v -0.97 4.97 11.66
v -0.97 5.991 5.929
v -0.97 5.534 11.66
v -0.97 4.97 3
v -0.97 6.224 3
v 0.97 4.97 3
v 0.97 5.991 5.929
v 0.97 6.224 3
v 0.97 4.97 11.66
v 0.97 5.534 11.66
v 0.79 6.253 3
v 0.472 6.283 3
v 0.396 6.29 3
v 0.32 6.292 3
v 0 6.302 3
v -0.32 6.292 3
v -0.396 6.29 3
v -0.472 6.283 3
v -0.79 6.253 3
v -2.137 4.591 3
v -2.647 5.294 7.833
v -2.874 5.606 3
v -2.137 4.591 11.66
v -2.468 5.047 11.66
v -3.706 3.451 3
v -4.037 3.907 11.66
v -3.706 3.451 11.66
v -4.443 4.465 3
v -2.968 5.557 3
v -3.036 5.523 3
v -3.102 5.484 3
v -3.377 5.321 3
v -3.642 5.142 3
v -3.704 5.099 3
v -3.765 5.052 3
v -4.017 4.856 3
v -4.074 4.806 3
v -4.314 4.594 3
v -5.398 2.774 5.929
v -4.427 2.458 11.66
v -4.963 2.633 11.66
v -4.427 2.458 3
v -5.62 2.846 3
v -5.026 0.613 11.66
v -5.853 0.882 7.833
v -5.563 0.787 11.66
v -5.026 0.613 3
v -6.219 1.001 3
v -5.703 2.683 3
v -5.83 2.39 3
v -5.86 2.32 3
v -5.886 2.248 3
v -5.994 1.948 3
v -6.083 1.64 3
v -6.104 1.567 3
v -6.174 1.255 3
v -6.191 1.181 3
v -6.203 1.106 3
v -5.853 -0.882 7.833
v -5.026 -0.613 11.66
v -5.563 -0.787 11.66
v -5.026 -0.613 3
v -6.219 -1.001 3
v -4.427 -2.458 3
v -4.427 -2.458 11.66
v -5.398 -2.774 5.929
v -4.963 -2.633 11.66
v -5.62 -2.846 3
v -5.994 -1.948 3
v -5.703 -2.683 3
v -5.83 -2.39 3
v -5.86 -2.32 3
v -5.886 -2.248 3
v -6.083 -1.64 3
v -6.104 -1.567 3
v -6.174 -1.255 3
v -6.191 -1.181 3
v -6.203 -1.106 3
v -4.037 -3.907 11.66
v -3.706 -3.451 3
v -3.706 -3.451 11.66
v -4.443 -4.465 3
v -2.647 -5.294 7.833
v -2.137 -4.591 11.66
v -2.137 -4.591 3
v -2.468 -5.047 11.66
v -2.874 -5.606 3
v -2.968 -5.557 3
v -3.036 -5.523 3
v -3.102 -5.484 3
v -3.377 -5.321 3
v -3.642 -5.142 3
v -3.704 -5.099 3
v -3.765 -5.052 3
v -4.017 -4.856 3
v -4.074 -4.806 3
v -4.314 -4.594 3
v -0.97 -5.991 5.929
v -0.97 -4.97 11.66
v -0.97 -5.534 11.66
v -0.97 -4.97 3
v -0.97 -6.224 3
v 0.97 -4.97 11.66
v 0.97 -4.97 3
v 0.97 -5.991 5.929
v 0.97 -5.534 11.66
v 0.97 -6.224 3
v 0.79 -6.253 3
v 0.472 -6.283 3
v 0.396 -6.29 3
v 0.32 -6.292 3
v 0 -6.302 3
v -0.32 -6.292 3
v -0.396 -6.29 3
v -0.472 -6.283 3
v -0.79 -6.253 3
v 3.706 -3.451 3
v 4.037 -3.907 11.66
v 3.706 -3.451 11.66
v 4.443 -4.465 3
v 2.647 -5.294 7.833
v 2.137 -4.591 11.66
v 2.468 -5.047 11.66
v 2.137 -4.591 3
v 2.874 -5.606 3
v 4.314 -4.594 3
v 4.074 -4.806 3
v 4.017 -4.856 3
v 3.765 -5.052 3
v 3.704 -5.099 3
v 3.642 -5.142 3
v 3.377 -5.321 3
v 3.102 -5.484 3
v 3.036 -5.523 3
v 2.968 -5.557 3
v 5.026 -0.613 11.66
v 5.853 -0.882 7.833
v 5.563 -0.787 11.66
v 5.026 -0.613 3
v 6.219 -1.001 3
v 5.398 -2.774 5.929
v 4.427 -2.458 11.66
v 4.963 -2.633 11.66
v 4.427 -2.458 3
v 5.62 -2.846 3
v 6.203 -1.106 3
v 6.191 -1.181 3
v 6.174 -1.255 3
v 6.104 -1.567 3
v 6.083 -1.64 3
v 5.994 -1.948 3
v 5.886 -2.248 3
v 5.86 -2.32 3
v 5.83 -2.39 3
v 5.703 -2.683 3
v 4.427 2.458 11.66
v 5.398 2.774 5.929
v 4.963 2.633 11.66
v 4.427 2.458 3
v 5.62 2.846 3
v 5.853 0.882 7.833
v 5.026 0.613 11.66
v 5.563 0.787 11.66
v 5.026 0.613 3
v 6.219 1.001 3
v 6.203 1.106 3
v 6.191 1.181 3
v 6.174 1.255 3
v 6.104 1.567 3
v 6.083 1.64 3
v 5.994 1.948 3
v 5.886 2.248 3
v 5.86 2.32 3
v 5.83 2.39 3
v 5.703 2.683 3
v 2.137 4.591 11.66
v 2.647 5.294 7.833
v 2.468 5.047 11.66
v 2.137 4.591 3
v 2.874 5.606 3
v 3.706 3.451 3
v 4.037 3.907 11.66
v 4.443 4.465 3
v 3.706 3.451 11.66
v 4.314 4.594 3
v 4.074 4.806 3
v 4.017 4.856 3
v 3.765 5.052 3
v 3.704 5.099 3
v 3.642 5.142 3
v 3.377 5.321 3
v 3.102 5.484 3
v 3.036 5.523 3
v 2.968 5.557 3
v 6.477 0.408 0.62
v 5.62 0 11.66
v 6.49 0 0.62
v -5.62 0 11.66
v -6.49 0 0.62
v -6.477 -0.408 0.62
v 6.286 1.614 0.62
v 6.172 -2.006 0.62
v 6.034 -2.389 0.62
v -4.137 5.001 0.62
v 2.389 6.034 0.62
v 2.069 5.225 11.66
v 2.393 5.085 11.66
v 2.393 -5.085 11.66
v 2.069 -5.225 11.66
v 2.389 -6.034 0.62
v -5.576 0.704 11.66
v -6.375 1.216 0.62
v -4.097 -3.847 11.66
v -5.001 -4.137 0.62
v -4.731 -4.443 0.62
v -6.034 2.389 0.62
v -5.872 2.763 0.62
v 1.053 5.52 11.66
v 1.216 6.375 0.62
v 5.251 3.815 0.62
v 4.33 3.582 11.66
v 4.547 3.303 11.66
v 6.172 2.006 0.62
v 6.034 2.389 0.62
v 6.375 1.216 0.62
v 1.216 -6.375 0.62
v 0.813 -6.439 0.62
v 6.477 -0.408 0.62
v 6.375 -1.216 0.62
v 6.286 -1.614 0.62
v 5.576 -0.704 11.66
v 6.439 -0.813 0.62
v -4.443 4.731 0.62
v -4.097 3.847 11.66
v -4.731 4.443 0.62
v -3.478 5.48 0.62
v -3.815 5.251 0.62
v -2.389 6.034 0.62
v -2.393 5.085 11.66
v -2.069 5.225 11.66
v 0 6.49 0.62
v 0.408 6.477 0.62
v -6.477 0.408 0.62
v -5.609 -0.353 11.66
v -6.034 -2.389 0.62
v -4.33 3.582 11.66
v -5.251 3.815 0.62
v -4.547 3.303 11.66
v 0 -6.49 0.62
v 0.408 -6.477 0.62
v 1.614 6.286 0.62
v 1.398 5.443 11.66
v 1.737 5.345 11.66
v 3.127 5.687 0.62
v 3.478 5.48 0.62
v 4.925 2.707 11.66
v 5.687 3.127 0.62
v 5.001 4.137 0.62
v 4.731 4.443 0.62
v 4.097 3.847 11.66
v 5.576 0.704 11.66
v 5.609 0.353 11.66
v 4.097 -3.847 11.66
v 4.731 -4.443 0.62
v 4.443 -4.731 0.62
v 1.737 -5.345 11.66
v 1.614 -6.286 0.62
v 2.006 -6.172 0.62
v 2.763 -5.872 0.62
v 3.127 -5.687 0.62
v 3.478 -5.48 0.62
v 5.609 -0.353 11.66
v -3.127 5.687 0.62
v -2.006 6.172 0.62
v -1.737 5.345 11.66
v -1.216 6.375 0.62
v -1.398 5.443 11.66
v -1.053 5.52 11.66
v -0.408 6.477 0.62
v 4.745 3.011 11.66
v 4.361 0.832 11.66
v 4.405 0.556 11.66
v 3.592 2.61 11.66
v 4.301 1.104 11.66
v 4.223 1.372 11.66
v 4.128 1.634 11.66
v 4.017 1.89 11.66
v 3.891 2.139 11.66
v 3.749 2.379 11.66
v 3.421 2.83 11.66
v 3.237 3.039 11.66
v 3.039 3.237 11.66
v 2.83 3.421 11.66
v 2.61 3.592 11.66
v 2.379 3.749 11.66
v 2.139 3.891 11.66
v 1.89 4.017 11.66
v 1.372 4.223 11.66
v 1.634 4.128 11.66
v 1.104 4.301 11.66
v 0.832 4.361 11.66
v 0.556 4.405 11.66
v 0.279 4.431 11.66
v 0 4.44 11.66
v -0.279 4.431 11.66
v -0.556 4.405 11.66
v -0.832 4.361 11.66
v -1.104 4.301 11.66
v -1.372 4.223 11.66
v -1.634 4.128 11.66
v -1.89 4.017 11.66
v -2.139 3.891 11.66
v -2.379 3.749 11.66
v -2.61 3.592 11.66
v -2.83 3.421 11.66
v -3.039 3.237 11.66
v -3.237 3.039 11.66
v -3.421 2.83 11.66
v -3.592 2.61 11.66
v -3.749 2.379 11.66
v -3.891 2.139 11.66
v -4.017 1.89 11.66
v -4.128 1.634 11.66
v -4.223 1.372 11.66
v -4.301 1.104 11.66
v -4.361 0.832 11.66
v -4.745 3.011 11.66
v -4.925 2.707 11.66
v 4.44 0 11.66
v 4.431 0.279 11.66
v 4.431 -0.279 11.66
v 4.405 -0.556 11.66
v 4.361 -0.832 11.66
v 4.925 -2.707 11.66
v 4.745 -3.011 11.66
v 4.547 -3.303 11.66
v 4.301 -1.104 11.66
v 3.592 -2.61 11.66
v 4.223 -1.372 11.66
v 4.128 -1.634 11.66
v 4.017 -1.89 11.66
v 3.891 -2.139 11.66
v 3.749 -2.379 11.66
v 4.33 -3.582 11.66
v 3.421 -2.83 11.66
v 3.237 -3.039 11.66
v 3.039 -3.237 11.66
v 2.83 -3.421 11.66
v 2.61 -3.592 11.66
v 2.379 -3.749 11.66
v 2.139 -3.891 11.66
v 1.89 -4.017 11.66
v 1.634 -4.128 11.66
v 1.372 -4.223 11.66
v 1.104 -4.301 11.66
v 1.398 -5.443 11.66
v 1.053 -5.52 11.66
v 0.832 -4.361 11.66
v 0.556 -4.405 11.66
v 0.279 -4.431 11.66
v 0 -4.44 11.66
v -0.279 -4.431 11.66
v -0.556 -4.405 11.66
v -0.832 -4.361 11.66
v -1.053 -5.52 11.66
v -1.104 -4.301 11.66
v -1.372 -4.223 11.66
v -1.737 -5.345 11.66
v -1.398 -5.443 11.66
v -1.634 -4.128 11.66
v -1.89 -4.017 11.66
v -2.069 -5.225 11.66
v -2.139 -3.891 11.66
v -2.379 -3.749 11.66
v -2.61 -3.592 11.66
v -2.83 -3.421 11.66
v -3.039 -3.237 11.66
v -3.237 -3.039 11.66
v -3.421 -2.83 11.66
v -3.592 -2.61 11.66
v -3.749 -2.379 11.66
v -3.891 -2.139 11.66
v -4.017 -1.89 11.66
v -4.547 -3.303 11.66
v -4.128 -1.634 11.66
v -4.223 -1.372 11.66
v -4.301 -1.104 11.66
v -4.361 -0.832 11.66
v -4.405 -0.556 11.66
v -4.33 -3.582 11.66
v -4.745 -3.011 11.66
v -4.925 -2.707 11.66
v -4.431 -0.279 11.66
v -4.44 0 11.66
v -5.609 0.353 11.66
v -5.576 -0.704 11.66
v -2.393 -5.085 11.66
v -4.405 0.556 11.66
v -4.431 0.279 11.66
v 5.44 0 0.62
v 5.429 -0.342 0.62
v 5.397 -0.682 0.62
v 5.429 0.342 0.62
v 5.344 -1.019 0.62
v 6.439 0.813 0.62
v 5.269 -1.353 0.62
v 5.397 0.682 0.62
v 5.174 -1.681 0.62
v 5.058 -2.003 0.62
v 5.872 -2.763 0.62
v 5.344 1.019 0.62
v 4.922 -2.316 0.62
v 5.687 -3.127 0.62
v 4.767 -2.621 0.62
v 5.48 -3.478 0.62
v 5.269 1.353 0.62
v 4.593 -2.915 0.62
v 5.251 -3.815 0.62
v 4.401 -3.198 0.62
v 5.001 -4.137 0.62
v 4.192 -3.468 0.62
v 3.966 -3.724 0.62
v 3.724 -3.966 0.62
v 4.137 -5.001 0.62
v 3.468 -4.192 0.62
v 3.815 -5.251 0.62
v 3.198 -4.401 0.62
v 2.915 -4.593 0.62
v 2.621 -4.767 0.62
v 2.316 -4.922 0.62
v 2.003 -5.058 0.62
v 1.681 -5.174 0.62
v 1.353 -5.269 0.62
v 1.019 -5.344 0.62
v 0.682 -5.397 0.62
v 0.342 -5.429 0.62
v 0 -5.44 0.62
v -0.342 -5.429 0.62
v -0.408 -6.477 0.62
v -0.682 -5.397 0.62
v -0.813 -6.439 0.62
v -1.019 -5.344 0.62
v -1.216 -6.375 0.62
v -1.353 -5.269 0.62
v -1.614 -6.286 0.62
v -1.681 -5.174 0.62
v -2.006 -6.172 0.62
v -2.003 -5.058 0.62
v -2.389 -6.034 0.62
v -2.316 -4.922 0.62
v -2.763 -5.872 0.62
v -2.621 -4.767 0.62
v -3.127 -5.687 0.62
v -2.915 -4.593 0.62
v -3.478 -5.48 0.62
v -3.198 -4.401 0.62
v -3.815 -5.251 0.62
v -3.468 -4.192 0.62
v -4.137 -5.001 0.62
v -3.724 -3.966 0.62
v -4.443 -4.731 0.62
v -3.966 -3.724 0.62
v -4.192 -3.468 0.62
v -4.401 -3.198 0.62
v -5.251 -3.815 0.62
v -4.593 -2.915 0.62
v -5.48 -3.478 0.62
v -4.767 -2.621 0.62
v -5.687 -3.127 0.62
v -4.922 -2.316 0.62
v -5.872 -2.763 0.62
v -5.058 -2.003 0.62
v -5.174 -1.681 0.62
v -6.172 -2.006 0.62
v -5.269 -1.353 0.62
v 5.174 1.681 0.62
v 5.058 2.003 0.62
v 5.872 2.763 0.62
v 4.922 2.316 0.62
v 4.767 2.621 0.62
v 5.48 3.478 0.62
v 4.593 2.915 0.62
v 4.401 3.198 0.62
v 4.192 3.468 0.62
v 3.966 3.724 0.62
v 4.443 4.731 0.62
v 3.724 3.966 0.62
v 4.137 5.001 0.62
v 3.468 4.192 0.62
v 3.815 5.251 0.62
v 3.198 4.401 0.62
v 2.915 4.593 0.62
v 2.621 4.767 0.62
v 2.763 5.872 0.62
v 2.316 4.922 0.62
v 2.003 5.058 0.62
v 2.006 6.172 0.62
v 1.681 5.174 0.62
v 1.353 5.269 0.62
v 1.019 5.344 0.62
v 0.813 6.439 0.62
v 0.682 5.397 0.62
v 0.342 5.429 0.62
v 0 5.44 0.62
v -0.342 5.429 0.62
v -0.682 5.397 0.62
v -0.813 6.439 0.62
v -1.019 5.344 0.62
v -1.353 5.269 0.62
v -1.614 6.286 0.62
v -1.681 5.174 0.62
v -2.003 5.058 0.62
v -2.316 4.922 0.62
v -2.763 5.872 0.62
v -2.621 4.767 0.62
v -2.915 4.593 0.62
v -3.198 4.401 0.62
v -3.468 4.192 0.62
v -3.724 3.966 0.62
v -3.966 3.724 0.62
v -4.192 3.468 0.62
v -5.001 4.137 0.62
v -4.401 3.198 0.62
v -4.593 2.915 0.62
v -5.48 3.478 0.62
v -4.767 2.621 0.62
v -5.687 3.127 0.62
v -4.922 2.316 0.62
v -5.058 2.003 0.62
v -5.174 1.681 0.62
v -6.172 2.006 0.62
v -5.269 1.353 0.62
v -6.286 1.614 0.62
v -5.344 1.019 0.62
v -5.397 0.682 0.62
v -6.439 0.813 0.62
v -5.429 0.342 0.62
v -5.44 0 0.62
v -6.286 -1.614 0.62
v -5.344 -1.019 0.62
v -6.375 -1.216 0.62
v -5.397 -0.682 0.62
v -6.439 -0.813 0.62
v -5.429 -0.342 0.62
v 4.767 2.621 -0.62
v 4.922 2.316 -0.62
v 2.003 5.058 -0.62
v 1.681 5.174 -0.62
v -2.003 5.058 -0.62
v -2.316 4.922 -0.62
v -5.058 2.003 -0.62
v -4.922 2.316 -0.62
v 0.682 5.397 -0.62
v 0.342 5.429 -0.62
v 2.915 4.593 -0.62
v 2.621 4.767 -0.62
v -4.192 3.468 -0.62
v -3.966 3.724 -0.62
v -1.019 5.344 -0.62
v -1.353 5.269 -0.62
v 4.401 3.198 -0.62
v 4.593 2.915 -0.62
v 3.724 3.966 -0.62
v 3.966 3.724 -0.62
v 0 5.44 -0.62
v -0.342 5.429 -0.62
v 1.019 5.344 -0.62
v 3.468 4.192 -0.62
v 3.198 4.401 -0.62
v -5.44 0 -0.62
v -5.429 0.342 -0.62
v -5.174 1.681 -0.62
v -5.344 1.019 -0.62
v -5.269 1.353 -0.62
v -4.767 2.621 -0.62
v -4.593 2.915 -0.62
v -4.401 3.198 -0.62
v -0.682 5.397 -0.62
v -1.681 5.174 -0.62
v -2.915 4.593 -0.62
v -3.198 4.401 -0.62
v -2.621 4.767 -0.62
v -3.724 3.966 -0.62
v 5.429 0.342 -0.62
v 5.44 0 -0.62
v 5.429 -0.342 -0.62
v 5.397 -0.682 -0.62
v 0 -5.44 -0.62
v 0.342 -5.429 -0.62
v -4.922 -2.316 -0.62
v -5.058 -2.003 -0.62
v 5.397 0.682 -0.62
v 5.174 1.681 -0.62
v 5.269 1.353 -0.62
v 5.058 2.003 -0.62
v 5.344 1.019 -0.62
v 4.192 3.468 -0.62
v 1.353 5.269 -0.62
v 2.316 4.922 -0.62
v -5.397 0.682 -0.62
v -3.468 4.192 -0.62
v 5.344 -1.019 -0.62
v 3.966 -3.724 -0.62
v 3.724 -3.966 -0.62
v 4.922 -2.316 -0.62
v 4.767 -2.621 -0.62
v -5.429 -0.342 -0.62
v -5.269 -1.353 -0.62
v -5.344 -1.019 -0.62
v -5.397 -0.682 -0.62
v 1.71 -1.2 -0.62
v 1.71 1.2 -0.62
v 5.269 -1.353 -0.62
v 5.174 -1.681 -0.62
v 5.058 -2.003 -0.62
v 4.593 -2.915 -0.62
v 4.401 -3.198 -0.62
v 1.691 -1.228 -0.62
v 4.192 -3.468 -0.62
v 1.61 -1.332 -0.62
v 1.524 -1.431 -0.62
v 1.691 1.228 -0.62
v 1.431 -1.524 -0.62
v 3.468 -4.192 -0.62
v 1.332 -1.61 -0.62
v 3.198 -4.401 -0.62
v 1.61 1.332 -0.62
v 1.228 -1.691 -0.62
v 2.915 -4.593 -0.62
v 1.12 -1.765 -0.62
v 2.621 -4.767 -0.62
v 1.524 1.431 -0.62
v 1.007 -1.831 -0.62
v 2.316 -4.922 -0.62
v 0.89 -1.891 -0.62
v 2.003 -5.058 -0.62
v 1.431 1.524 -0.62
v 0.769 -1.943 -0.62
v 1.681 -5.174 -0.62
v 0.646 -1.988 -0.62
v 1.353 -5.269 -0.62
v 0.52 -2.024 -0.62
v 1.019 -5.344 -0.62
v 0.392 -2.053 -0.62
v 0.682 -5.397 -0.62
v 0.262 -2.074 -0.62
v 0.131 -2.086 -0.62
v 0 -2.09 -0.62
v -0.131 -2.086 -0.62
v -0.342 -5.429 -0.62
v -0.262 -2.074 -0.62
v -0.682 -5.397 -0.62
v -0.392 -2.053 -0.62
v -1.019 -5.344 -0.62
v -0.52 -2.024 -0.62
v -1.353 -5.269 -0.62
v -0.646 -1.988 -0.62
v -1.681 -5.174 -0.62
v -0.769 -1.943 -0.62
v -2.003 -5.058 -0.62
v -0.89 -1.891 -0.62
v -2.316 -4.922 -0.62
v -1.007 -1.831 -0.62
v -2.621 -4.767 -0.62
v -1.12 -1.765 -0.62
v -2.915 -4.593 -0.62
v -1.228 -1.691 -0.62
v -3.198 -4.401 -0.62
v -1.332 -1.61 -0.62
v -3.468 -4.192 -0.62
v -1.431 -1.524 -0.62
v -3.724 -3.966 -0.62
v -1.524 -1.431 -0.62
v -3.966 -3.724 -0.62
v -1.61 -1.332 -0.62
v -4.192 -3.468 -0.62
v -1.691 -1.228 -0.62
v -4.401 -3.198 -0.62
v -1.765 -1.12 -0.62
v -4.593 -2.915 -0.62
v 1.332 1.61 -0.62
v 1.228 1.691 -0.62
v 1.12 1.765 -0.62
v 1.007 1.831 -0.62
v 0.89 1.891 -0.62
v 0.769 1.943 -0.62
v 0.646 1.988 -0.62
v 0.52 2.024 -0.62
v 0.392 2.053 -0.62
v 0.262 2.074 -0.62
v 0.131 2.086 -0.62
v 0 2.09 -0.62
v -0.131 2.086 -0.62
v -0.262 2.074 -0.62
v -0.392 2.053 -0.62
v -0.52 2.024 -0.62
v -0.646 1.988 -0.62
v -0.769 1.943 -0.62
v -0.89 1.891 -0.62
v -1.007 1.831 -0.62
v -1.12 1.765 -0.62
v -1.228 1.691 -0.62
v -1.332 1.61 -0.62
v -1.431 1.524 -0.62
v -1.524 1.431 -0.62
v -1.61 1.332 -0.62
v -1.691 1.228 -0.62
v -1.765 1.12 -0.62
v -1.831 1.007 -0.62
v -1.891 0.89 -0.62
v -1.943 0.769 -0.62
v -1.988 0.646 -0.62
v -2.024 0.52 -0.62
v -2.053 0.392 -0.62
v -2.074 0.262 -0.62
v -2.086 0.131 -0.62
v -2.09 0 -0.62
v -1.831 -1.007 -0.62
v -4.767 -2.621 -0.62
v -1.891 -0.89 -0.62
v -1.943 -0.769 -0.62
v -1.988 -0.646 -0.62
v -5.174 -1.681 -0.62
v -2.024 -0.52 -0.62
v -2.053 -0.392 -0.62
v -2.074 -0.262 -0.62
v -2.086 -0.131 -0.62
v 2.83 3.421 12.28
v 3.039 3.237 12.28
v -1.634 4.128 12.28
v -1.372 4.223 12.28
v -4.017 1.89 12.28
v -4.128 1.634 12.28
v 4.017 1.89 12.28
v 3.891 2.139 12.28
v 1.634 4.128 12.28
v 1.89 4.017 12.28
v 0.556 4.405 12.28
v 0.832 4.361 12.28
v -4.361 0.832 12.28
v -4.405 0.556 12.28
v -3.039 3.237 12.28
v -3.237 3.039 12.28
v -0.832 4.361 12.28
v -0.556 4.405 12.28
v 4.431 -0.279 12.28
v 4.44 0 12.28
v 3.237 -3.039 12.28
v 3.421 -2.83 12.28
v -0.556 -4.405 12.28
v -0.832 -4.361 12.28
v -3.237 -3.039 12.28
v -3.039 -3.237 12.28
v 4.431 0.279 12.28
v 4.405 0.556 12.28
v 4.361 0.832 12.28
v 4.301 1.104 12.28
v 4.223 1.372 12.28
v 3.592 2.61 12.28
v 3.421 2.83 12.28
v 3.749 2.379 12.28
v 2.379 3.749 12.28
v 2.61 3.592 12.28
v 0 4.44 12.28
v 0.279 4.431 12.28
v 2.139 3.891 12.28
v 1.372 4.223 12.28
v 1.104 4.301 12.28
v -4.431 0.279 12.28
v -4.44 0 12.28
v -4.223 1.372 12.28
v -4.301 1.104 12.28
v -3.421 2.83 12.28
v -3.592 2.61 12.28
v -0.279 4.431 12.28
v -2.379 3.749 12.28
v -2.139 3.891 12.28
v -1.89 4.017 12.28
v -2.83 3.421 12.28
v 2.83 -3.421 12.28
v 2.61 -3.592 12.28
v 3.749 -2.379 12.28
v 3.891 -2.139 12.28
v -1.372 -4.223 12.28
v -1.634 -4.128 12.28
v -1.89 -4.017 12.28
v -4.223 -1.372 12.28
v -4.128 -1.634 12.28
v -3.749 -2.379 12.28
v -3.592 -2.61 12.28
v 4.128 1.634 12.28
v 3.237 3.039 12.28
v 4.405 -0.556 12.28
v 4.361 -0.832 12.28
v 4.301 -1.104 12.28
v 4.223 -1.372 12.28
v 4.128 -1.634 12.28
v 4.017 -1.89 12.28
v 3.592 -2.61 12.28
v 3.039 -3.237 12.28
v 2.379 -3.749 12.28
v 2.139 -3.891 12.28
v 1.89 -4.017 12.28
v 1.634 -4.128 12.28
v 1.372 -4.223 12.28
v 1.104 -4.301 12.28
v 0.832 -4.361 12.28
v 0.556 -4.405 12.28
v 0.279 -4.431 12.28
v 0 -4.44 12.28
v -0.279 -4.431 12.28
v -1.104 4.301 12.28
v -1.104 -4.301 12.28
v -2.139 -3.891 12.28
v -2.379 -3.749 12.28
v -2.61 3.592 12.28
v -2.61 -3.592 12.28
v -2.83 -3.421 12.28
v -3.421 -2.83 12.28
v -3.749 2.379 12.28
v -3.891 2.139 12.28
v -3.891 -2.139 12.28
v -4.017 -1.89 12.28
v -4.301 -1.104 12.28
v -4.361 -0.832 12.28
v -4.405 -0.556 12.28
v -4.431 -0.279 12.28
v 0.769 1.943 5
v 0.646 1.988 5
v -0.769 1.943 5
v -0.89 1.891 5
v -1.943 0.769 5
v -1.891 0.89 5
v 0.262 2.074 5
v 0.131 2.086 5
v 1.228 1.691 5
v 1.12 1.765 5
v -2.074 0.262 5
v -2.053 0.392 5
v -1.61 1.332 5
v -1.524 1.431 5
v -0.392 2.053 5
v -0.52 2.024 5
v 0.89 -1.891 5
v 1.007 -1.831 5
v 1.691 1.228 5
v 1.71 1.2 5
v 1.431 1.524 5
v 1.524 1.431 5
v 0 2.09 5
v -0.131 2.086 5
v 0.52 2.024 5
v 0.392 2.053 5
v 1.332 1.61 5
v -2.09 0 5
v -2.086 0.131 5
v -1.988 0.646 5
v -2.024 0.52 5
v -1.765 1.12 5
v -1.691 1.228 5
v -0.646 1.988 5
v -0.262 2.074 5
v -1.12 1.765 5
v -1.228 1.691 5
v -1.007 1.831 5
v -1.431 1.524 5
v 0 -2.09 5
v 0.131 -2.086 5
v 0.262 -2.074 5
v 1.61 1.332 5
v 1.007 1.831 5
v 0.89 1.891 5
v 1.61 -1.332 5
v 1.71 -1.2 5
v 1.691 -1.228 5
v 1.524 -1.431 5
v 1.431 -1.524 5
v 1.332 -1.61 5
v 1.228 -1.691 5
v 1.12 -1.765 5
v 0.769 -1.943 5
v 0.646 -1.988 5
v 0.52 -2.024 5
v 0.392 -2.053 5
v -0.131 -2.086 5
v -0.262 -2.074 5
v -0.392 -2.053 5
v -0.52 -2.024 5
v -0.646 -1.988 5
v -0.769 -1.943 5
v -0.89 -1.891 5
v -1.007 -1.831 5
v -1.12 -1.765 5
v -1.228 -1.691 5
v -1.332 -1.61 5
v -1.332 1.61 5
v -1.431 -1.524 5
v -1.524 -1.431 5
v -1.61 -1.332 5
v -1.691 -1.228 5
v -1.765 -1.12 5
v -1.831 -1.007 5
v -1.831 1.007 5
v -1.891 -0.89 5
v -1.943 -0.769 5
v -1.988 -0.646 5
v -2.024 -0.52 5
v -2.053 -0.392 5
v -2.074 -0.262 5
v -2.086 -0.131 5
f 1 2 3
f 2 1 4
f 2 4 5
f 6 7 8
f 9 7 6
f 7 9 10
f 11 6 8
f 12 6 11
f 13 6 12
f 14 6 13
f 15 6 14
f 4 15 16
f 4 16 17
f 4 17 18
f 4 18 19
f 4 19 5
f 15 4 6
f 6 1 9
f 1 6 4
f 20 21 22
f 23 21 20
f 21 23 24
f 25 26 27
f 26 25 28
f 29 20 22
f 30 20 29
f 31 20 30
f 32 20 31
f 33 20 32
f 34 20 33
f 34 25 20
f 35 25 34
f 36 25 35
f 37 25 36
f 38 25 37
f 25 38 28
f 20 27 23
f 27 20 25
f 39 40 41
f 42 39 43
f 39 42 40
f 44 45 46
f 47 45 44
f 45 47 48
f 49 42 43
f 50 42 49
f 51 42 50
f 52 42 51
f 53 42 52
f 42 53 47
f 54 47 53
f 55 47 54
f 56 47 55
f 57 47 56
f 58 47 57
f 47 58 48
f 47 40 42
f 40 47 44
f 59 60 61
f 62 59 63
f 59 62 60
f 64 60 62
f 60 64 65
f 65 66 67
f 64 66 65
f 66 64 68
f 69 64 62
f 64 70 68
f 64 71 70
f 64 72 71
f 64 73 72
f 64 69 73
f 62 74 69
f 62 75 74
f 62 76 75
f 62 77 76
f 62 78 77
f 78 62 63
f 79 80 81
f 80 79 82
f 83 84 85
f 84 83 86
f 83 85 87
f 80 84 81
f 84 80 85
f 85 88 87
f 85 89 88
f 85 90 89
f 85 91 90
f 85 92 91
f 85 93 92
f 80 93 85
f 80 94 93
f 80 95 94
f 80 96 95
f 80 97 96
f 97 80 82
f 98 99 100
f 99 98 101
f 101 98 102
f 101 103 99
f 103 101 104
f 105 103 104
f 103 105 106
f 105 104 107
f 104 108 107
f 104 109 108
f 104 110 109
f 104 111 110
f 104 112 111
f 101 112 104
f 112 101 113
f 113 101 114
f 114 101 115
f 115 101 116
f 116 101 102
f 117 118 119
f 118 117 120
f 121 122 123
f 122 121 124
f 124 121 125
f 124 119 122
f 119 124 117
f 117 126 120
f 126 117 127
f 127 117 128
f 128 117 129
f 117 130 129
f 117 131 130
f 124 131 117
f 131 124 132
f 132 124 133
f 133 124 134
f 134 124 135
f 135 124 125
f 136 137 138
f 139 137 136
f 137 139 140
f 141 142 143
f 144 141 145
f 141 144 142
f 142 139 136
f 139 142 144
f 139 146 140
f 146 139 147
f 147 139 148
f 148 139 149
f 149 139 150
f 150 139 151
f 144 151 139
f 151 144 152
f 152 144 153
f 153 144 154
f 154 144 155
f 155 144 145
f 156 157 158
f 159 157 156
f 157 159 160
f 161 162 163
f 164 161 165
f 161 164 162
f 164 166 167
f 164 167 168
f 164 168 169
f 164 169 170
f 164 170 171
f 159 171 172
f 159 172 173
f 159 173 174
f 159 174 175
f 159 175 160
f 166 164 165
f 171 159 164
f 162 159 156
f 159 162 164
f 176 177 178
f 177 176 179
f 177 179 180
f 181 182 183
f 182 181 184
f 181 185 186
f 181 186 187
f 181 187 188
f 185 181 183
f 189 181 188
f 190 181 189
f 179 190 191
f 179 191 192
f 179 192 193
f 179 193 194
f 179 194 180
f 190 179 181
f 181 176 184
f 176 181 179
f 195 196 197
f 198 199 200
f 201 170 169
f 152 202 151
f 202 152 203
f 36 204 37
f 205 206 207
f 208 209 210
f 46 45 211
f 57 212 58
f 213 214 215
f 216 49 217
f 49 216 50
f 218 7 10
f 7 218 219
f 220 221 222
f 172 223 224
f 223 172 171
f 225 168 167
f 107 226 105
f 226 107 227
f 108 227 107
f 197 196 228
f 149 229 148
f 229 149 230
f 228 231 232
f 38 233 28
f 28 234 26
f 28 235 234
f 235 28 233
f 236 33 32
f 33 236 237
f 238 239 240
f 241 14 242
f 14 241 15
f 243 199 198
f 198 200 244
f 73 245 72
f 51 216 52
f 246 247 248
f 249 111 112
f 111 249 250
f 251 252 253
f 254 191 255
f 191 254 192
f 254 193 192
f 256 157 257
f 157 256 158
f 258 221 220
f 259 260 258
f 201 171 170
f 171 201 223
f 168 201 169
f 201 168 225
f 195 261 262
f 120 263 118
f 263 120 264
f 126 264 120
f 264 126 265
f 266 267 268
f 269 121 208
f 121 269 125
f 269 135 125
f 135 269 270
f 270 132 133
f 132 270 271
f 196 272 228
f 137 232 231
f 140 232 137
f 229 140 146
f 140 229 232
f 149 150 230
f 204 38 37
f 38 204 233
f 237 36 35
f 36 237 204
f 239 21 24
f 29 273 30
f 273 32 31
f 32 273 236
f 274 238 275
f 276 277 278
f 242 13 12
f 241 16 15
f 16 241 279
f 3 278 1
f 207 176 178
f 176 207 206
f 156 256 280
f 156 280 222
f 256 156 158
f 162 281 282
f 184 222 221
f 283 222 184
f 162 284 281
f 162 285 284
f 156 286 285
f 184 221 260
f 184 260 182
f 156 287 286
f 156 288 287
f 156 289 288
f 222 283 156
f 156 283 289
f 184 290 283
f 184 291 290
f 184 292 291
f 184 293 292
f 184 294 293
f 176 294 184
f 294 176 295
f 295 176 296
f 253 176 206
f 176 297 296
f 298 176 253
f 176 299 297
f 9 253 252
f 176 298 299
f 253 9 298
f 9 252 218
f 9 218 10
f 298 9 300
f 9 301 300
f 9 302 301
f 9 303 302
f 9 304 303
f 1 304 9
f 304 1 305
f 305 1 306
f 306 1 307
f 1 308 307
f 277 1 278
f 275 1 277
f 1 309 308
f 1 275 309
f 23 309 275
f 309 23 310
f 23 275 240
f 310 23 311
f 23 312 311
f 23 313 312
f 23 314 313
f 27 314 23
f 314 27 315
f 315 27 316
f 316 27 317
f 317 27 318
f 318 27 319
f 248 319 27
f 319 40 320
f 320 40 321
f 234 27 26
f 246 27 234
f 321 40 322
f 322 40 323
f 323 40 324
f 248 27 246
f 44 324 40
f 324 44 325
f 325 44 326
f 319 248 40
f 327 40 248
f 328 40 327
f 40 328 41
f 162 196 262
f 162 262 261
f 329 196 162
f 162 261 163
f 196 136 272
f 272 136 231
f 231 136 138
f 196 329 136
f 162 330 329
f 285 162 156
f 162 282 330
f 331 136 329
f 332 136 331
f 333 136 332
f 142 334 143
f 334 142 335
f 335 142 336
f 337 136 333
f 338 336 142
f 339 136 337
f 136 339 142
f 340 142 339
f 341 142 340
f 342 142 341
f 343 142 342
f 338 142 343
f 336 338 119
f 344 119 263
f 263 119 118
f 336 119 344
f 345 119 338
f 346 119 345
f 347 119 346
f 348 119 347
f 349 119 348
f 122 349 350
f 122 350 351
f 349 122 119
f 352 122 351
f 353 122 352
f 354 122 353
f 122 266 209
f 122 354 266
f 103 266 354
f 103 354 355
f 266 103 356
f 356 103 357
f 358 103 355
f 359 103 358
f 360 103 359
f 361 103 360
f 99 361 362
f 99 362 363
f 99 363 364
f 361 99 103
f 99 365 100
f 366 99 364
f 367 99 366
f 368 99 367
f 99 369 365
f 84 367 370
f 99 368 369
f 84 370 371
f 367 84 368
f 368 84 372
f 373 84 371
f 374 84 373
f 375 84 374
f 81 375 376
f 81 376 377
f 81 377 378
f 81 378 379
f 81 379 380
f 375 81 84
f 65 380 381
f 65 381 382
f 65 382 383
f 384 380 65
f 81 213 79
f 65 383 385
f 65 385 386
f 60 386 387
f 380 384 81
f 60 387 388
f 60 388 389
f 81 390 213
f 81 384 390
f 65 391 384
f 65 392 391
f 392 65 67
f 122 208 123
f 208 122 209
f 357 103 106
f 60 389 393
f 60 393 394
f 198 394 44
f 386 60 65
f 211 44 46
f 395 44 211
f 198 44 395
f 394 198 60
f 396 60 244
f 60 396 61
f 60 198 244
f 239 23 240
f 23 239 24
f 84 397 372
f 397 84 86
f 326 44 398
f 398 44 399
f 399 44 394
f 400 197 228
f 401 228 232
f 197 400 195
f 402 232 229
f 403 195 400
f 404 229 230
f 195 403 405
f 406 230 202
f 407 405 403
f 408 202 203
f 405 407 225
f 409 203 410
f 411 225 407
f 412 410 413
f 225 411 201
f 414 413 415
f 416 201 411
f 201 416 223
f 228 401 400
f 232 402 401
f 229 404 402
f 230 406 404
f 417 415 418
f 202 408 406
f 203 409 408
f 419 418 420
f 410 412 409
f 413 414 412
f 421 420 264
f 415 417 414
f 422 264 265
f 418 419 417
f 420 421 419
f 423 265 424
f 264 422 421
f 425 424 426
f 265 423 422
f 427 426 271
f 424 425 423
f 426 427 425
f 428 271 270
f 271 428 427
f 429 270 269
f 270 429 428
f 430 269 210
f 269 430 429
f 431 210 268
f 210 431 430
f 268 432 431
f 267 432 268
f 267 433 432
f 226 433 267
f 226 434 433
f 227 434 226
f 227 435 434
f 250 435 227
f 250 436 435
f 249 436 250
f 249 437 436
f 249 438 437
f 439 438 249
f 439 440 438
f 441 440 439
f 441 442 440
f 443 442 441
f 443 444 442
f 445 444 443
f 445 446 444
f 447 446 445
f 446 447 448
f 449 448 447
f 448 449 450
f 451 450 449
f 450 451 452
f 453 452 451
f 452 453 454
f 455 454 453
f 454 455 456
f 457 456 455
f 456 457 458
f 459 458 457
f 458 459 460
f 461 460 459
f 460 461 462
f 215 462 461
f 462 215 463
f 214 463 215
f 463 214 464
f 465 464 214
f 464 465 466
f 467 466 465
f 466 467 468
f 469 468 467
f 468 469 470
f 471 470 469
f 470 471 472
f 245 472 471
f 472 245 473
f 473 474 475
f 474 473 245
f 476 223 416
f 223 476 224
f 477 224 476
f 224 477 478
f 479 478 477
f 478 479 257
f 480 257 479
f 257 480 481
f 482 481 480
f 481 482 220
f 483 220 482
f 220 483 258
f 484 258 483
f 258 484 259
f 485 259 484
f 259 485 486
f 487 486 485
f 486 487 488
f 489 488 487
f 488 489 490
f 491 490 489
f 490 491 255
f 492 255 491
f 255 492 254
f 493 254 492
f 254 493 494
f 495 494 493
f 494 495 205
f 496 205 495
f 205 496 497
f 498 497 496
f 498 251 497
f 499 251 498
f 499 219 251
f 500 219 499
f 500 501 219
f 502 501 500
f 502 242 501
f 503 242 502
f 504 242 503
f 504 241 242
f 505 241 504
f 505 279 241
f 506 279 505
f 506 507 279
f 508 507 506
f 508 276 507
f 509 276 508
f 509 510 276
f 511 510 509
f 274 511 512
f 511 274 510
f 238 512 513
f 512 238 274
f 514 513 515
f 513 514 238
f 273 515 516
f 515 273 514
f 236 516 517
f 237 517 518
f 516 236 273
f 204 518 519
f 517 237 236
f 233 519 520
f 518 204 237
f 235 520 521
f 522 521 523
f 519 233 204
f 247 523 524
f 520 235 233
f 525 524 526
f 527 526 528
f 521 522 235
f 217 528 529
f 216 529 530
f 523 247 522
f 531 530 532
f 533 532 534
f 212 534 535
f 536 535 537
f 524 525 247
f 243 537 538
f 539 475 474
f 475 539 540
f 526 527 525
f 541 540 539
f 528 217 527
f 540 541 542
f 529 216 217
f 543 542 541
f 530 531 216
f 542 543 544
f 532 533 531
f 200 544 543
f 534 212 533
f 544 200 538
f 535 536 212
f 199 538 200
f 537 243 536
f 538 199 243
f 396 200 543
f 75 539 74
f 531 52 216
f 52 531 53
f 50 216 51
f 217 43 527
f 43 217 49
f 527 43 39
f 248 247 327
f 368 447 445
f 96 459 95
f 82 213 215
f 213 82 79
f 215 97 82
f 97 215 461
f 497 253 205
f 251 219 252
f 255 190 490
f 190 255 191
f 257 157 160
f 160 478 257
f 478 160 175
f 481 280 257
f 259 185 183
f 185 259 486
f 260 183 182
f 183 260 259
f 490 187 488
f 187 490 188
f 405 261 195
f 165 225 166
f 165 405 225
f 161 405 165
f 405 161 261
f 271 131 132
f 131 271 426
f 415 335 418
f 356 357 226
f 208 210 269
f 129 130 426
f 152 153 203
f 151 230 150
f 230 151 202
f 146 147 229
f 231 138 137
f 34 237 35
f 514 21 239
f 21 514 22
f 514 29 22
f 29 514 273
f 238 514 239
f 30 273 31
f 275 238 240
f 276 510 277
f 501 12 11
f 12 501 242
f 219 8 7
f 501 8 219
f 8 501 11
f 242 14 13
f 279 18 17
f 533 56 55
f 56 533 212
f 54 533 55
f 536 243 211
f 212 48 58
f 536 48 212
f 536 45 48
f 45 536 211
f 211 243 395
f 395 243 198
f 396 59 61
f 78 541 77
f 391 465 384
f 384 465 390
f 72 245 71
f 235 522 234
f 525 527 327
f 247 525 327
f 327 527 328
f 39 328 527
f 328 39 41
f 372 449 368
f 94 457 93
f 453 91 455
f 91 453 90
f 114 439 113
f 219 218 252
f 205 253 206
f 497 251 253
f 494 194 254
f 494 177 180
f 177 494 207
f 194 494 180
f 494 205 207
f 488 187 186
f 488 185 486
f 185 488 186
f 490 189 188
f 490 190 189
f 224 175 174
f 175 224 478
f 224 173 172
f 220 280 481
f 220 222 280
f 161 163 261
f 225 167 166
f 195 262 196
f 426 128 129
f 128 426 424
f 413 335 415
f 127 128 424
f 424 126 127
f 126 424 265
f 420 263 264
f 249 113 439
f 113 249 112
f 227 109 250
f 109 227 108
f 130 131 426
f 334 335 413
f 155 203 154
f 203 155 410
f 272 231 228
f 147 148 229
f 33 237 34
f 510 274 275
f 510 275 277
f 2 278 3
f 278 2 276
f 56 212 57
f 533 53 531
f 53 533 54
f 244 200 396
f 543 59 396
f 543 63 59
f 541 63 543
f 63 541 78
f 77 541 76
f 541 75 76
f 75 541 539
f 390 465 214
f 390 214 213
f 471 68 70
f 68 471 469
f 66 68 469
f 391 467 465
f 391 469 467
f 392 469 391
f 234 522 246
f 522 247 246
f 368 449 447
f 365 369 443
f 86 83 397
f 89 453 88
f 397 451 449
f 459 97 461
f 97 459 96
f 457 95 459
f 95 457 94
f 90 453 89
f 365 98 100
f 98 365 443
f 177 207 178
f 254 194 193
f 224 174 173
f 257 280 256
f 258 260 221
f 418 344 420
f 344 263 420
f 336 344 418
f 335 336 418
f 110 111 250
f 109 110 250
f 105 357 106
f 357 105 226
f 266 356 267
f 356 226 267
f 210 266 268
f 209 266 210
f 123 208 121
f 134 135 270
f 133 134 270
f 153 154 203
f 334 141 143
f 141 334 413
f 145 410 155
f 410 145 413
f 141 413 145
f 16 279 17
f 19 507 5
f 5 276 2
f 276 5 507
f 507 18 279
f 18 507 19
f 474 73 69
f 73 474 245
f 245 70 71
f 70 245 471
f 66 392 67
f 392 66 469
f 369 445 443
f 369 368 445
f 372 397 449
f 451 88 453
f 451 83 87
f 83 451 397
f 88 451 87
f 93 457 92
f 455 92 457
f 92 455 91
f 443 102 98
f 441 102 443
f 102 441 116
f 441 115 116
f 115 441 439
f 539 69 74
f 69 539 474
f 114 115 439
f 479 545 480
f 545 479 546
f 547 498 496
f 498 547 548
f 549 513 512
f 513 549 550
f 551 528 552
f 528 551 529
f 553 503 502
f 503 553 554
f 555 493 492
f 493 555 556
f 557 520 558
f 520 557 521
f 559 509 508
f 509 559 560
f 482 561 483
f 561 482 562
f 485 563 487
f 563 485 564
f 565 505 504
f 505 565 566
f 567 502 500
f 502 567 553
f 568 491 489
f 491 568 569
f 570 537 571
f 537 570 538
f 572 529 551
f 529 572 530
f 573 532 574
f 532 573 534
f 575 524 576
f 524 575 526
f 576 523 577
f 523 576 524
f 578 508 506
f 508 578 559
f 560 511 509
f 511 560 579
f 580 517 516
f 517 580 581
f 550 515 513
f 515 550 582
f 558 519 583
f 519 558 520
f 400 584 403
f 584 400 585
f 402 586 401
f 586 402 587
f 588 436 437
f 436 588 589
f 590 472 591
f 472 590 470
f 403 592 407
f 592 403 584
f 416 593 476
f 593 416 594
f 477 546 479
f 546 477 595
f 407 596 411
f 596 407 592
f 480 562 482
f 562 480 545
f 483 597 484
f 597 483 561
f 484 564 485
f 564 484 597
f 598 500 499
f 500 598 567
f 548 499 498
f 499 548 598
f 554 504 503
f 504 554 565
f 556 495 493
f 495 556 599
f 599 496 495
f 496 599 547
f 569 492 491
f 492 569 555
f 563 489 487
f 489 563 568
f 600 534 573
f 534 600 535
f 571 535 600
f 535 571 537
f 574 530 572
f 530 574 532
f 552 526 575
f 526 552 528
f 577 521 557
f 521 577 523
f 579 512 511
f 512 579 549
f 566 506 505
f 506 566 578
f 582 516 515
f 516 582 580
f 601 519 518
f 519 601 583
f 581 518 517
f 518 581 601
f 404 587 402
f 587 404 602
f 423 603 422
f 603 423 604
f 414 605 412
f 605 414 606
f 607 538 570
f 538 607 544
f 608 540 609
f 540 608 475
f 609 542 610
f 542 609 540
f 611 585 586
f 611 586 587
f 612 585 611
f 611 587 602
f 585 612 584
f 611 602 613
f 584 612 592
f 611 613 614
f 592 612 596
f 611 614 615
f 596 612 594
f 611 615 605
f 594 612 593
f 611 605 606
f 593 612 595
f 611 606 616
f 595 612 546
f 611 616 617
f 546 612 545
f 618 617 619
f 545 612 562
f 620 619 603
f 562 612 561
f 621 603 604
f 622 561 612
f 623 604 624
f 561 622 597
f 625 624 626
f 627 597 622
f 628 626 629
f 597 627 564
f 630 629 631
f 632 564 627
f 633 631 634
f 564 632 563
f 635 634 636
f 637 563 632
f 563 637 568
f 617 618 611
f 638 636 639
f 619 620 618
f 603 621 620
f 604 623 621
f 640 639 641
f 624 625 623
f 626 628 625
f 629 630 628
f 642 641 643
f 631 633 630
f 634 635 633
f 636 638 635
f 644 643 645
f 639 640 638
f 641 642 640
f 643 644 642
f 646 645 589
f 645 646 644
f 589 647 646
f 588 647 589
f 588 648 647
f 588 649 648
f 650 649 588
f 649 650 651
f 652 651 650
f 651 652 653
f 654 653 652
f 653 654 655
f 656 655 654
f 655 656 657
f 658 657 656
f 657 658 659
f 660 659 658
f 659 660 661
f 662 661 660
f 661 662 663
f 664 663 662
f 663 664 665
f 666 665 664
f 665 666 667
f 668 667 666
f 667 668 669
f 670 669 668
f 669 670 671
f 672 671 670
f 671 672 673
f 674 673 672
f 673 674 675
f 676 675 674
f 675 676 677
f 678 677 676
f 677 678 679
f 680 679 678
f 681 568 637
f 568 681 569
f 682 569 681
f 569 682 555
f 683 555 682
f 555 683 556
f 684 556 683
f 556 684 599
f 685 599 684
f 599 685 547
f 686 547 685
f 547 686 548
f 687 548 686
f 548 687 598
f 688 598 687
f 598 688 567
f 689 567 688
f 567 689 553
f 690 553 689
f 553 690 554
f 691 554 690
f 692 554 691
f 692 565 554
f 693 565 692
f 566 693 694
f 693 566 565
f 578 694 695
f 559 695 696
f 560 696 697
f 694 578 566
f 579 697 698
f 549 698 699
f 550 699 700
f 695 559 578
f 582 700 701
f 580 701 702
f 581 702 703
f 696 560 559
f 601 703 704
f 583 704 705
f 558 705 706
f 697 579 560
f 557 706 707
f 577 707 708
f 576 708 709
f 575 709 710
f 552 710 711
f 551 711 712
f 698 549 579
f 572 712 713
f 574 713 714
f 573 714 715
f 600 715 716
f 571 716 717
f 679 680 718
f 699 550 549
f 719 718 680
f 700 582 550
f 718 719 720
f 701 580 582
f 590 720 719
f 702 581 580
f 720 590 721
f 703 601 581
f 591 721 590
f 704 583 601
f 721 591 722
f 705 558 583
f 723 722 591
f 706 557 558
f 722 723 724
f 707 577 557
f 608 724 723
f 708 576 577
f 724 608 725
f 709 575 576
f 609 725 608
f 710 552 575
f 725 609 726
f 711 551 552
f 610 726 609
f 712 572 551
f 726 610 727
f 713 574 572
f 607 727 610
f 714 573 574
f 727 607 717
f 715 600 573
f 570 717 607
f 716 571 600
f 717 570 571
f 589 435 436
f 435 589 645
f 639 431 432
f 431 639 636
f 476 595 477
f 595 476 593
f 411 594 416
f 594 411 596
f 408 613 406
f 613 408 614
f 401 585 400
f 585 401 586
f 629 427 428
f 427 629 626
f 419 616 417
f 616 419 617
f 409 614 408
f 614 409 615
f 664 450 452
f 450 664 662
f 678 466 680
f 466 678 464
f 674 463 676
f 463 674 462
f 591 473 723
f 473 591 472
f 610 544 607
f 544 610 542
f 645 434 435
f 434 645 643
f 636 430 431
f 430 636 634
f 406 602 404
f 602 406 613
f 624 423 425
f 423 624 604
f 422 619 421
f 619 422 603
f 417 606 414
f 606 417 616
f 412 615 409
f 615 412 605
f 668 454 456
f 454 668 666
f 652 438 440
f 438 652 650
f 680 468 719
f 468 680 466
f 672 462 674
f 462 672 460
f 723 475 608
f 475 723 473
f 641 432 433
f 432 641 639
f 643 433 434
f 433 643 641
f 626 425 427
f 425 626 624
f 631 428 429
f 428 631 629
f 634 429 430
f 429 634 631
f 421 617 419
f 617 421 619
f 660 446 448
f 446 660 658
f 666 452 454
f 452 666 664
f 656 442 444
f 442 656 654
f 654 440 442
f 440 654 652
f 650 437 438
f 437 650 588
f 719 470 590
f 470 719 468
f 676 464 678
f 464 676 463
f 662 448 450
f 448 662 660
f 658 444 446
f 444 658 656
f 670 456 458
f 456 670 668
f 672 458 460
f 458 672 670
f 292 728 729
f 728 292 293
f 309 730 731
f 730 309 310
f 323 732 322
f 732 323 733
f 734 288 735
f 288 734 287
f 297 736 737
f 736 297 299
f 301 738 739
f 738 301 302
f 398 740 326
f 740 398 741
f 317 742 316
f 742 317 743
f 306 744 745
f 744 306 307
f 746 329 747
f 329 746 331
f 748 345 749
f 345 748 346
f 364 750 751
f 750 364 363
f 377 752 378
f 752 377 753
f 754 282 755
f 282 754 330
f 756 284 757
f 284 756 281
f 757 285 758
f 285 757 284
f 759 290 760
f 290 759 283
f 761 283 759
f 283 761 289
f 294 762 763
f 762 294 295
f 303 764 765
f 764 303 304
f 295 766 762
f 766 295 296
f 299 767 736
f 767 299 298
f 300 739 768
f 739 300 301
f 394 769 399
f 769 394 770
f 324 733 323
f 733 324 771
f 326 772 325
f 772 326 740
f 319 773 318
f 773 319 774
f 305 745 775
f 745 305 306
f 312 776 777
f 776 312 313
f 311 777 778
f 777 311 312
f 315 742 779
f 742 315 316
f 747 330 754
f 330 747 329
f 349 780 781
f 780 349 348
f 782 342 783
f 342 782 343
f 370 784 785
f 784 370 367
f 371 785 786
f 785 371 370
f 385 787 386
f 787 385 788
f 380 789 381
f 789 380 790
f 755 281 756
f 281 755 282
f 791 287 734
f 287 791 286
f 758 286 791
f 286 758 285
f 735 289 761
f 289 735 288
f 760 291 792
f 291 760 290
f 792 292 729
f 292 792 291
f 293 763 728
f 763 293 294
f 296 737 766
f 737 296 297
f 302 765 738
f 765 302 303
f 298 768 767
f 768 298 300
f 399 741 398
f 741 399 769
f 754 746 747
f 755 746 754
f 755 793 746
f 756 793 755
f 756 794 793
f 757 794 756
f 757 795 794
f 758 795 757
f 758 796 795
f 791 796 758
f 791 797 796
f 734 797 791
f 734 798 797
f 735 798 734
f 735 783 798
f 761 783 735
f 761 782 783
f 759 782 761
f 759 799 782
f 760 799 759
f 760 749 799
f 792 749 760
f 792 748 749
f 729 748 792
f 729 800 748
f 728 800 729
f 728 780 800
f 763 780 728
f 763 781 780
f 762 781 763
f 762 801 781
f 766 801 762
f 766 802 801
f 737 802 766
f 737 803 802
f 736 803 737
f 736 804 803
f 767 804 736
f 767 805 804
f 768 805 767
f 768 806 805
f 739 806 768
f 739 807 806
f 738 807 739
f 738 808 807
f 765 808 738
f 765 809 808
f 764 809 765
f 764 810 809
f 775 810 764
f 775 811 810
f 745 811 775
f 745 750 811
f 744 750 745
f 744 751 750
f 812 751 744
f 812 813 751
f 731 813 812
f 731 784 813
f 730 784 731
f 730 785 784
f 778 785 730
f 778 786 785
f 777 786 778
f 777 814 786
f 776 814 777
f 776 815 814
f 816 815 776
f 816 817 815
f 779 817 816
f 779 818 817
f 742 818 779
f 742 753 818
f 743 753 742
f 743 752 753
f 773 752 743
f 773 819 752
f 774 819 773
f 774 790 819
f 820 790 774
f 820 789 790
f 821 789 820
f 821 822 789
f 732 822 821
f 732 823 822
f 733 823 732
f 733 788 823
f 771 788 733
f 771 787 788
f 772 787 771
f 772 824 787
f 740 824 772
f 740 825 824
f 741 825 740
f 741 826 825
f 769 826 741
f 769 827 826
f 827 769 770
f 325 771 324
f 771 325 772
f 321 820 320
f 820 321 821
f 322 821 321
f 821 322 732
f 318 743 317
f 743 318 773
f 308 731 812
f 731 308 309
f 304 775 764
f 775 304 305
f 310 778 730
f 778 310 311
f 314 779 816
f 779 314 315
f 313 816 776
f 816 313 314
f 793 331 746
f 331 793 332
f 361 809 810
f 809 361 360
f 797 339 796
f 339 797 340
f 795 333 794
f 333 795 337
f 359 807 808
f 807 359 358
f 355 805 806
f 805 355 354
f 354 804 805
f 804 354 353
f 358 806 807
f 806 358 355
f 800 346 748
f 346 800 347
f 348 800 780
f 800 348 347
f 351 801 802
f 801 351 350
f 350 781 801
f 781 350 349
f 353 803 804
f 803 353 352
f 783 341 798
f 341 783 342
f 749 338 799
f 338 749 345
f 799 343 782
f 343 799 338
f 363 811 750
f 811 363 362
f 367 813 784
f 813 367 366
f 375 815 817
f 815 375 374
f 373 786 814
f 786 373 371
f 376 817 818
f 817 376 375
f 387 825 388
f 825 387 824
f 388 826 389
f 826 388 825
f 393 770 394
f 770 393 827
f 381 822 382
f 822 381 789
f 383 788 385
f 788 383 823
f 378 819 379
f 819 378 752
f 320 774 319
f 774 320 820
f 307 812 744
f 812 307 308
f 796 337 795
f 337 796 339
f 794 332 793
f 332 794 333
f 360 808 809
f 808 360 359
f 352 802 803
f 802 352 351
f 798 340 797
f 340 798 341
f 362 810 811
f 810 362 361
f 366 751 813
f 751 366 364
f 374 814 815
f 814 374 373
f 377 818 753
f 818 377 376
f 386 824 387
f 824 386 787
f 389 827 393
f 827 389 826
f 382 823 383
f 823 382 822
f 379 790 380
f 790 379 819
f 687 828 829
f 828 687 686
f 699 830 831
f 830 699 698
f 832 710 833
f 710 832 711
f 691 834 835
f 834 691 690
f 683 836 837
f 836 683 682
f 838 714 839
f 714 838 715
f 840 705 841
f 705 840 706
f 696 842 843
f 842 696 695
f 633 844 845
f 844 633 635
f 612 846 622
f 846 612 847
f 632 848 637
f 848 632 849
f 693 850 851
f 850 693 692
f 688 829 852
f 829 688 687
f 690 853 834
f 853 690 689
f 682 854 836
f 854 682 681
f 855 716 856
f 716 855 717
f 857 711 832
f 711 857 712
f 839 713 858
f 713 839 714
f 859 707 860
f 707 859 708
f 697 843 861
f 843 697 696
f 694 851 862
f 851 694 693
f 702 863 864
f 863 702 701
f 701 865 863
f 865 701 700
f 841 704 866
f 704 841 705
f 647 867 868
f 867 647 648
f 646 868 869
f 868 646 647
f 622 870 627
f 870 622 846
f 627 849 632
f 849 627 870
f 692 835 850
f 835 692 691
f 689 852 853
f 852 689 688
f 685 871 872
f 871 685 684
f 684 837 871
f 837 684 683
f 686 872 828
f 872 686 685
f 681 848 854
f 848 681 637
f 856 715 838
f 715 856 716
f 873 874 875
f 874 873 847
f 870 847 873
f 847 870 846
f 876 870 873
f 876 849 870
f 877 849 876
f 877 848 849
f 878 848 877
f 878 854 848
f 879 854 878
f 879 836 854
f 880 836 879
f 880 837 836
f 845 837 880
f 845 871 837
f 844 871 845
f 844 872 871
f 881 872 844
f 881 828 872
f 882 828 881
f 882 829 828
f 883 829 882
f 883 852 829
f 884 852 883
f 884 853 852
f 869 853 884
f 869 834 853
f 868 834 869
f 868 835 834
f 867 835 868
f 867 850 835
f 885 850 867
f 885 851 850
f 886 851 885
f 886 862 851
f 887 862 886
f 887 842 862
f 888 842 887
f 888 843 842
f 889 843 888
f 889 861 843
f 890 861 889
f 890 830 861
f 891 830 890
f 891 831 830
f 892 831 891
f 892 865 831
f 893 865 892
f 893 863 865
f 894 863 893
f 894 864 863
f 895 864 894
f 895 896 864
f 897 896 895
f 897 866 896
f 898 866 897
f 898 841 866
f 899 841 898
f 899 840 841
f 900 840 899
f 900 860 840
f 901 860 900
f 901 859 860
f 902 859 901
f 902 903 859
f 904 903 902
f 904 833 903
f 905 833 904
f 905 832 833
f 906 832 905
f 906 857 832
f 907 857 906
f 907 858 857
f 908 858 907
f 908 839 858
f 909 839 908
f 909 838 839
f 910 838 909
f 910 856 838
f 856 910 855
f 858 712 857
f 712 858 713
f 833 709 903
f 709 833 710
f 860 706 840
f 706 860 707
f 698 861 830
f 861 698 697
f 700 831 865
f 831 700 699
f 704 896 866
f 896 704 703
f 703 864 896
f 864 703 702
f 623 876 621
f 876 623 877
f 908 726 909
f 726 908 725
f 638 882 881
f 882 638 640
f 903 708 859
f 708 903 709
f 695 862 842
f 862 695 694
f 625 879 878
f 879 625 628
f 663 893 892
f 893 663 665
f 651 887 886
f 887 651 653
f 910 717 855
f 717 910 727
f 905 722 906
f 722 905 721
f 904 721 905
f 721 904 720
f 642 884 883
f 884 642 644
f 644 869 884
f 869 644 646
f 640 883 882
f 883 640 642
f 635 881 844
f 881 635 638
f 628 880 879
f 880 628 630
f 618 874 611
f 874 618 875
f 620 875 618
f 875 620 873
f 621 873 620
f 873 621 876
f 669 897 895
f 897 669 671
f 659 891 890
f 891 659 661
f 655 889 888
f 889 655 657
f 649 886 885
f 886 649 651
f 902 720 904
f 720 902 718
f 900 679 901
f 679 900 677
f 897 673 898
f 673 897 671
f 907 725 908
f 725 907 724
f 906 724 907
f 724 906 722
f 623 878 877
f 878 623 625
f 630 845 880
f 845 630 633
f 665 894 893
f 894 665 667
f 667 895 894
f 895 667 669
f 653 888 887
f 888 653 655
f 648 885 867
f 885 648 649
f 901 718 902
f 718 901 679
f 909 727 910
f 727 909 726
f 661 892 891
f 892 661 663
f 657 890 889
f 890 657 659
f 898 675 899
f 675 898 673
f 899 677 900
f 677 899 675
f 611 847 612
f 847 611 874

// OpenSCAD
$fn = 100;




// h = height in mm
// w = width in diameter in mm

h_full = 12.28;
h_ridge = 1.24;
h_grip = h_full-h_ridge;

w_top = 11.24;
w_base = 12.98;
w_ridge = 10.88;

w_open = 4.18;
w_short_open = 3.8;
h_chop_open = 3.56; //3.36?

open_depth = 10;

open_chop_missing = 0.38;

grip_gap = 1.94;
gap_margin = 3;
gap_depth = 4;

num_gaps = 10;


module gap(rotation) {
    rotate([0, 0, rotation]) translate([0,w_base/2+gap_depth,h_grip/2 + gap_margin]) cube([grip_gap, h_grip, h_grip], center=true);
}

module grip(num) {
    gap_sub = 360/num;
    difference() {
        translate([0,0,h_full/2]) cylinder(h=h_grip, r1=w_base/2, r2=w_top/2, center=true);
        for (g = [0:gap_sub:360])
            gap(g);
    }
}

module ridge(sub) {
    cylinder(h=h_ridge, r=w_ridge/2-sub, center=true);
}

module opening() {
    difference() {
        cylinder(h=open_depth, r=w_open/2, center=true);
        translate([w_open-open_chop_missing,0,0]) cube([w_open, w_open, open_depth], center = true);
    }
}

module ft2d_cap() {
    difference() {
        union() {
            grip(num_gaps);
            ridge(0);
            translate([0,0, h_full-(h_ridge/2)]) ridge(1);
        }
        opening();
    }
}

ft2d_cap();
